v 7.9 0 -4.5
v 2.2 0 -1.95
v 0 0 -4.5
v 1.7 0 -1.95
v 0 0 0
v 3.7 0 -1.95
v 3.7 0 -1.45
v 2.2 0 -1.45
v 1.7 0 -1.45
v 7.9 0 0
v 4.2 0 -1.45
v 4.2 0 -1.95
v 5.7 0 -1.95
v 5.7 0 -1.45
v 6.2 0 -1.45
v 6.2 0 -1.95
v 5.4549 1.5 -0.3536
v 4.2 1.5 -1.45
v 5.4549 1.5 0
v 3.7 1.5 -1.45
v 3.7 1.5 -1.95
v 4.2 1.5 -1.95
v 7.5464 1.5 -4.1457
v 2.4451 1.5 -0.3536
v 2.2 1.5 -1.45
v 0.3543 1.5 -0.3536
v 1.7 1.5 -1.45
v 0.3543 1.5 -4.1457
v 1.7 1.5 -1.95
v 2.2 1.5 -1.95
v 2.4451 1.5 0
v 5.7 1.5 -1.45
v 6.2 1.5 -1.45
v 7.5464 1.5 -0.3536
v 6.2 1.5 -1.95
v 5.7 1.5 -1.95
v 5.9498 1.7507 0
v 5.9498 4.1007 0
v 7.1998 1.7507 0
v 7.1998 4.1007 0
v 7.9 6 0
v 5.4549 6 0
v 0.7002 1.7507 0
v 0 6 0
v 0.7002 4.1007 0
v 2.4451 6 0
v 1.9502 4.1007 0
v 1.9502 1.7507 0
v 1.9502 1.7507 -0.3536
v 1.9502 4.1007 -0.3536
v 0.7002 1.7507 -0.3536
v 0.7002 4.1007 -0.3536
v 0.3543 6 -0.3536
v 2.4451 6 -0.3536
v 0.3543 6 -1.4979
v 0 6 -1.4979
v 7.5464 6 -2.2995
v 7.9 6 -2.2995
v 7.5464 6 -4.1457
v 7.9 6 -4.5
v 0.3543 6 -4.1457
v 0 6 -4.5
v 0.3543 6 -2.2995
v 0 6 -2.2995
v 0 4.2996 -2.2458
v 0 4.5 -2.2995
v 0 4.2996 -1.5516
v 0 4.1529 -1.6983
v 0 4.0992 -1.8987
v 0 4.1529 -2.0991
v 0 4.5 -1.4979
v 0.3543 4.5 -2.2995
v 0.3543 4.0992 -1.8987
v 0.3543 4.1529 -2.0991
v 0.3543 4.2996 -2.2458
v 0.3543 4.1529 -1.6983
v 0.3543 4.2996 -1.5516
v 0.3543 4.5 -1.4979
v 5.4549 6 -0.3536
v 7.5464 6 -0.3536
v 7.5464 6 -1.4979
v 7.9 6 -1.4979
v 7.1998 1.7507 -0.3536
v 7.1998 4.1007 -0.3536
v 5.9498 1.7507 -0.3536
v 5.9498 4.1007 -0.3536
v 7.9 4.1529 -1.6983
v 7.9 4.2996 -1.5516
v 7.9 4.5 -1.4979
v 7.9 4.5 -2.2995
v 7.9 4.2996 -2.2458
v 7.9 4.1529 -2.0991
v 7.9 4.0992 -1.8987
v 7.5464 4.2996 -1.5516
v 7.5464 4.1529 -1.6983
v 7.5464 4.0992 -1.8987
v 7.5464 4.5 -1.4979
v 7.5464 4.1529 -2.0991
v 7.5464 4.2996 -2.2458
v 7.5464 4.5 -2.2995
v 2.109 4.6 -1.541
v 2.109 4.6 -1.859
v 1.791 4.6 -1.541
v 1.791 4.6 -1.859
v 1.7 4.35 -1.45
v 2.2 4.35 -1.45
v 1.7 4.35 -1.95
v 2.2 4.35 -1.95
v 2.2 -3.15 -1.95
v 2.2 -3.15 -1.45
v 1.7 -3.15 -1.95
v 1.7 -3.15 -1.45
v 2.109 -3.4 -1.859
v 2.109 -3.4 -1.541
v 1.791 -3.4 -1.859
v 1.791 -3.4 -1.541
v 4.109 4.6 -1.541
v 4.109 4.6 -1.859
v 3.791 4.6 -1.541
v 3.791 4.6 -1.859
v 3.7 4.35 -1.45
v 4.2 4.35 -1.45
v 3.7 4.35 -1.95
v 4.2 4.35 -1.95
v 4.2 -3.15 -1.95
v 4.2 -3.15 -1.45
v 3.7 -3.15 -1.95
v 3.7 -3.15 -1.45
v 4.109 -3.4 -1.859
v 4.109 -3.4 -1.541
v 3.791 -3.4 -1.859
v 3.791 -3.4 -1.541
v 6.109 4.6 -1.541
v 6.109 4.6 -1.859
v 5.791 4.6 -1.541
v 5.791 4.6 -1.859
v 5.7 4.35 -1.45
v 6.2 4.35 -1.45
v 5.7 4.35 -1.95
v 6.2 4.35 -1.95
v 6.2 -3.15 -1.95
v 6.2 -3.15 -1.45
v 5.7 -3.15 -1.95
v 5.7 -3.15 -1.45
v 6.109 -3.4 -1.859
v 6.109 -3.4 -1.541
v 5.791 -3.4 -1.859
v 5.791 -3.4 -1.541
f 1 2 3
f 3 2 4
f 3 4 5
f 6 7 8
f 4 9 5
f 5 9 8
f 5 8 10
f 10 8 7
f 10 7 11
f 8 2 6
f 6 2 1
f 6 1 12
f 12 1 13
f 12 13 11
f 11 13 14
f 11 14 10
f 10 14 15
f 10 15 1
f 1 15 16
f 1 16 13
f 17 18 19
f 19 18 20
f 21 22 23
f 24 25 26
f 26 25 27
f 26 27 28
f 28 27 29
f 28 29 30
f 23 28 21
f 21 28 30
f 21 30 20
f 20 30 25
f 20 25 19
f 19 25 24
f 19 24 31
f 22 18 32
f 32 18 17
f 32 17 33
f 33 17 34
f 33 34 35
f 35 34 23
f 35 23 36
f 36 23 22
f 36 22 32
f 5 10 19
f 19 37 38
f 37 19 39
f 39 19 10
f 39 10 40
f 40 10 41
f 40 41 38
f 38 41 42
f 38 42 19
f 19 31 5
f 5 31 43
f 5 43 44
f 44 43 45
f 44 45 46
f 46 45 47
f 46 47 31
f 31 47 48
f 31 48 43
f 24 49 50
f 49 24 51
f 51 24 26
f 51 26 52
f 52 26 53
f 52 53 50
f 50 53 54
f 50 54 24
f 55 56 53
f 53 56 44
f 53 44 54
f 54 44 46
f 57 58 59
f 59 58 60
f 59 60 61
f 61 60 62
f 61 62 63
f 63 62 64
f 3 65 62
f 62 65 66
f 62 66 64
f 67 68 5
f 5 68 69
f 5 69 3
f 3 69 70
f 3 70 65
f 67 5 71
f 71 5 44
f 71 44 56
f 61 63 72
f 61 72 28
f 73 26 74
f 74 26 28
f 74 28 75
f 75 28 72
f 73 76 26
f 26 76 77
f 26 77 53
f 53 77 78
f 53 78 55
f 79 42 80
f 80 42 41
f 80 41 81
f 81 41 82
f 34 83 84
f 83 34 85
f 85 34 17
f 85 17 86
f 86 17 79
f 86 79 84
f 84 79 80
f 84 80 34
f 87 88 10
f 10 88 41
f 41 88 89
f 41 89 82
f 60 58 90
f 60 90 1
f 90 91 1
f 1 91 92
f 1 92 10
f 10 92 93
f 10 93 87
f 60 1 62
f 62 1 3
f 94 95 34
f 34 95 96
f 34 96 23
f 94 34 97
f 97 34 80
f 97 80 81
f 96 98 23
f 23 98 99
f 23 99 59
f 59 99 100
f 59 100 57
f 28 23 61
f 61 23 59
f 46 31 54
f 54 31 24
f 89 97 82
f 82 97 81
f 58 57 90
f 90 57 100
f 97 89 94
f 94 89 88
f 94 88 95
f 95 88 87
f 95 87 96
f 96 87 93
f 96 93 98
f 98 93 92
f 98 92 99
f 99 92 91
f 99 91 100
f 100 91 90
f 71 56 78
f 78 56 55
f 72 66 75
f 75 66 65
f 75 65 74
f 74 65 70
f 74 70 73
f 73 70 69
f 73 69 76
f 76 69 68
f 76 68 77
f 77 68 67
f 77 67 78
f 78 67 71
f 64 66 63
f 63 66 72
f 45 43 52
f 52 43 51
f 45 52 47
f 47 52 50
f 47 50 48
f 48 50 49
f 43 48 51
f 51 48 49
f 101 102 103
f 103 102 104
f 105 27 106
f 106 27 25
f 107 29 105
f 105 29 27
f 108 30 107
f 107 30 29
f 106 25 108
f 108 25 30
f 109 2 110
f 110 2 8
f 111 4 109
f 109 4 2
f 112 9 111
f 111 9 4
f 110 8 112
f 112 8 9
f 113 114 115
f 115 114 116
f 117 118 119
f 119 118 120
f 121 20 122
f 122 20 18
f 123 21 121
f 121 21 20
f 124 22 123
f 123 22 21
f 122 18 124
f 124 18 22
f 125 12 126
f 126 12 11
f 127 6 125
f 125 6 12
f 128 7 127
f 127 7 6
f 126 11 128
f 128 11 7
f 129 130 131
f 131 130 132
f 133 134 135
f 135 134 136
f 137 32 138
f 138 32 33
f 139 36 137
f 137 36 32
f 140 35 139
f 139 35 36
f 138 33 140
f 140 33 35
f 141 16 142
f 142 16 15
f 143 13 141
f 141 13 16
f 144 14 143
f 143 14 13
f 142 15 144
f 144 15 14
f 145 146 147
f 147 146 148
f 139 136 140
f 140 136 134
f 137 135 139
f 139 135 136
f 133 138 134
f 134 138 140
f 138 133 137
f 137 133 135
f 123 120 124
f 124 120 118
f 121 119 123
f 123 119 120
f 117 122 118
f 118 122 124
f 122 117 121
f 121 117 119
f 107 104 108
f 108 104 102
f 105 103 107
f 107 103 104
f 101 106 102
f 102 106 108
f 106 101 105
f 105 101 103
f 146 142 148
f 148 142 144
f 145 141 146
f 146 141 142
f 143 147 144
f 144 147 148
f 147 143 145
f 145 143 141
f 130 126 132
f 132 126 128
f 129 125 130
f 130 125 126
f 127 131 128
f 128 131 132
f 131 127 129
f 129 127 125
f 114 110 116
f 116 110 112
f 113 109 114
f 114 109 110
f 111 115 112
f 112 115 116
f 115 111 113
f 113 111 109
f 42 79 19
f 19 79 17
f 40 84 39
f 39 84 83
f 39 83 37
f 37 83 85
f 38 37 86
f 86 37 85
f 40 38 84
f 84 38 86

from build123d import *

# Parameters (mm, degrees)
SKETCH1_W              = 7.9
SKETCH1_H              = 6
BOSS_EXTRUDE1_DEPTH    = 4.5
SKETCH2_W              = 7.192186002
SKETCH2_H              = 3.792186002
CUT_EXTRUDE1_DEPTH     = 4.5
SKETCH3_W              = 1.504949596
SKETCH3_H              = 0.354260607
CUT_EXTRUDE2_DEPTH     = 4.5
CUT_EXTRUDE3_DEPTH     = 0.5
SKETCH6_W              = 1.25
SKETCH6_H              = 2.35
CUT_EXTRUDE4_DEPTH     = 0.5
BOSS_EXTRUDE3_START    = -3.4
SKETCH10_W             = 0.5
SKETCH10_H             = 0.5
BOSS_EXTRUDE3_DEPTH    = 8
CHAMFER1_SIZE          = 0.25
CHAMFER1_SIZE2         = 0.090992559
CHAMFER1_PART_2_SIZE   = 0.25
CHAMFER1_PART_2_SIZE2  = 0.090992559
CHAMFER1_PART_3_SIZE   = 0.25
CHAMFER1_PART_3_SIZE2  = 0.090992559
CHAMFER1_PART_4_SIZE   = 0.25
CHAMFER1_PART_4_SIZE2  = 0.090992559
CHAMFER1_PART_5_SIZE   = 0.25
CHAMFER1_PART_5_SIZE2  = 0.090992559
CHAMFER1_PART_6_SIZE   = 0.25
CHAMFER1_PART_6_SIZE2  = 0.090992559
CHAMFER1_PART_7_SIZE   = 0.25
CHAMFER1_PART_7_SIZE2  = 0.090992559
CHAMFER1_PART_8_SIZE   = 0.25
CHAMFER1_PART_8_SIZE2  = 0.090992559
CHAMFER1_PART_9_SIZE   = 0.25
CHAMFER1_PART_9_SIZE2  = 0.090992559
CHAMFER1_PART_10_SIZE  = 0.25
CHAMFER1_PART_10_SIZE2 = 0.090992559
CHAMFER1_PART_11_SIZE  = 0.25
CHAMFER1_PART_11_SIZE2 = 0.090992559
CHAMFER1_PART_12_SIZE  = 0.25
CHAMFER1_PART_12_SIZE2 = 0.090992559
CHAMFER2_SIZE          = 0.25
CHAMFER2_SIZE2         = 0.090992559
CHAMFER2_PART_2_SIZE   = 0.25
CHAMFER2_PART_2_SIZE2  = 0.090992559
CHAMFER2_PART_3_SIZE   = 0.25
CHAMFER2_PART_3_SIZE2  = 0.090992559
CHAMFER2_PART_4_SIZE   = 0.25
CHAMFER2_PART_4_SIZE2  = 0.090992559
CHAMFER2_PART_5_SIZE   = 0.25
CHAMFER2_PART_5_SIZE2  = 0.090992559
CHAMFER2_PART_6_SIZE   = 0.25
CHAMFER2_PART_6_SIZE2  = 0.090992559
CHAMFER2_PART_7_SIZE   = 0.25
CHAMFER2_PART_7_SIZE2  = 0.090992559
CHAMFER2_PART_8_SIZE   = 0.25
CHAMFER2_PART_8_SIZE2  = 0.090992559
CHAMFER2_PART_9_SIZE   = 0.25
CHAMFER2_PART_9_SIZE2  = 0.090992559
CHAMFER2_PART_10_SIZE  = 0.25
CHAMFER2_PART_10_SIZE2 = 0.090992559
CHAMFER2_PART_11_SIZE  = 0.25
CHAMFER2_PART_11_SIZE2 = 0.090992559
CHAMFER2_PART_12_SIZE  = 0.25
CHAMFER2_PART_12_SIZE2 = 0.090992559


with BuildPart() as part:
    # Sketch1 → Boss-Extrude1 (new body)
    with BuildSketch(Plane.XY):
        with Locations((3.95, 3)):
            Rectangle(SKETCH1_W, SKETCH1_H)
    extrude(amount=-BOSS_EXTRUDE1_DEPTH)

    # Sketch2 → Cut-Extrude1 (cut)
    with BuildSketch(Plane(origin=(0, 6, 0), x_dir=(1, 0, 0), z_dir=(0, 1, 0))):
        with Locations((3.950353608, 2.249646392)):
            Rectangle(SKETCH2_W, SKETCH2_H)
    extrude(amount=-CUT_EXTRUDE1_DEPTH, mode=Mode.SUBTRACT)

    # Sketch3 → Cut-Extrude2 (cut)
    with BuildSketch(Plane(origin=(0, 1.5, 0), x_dir=(1, 0, 0), z_dir=(0, 1, 0))):
        with Locations((3.197525202, 0.177130304)):
            Rectangle(SKETCH3_W, SKETCH3_H)
    cut_extrude2 = extrude(amount=CUT_EXTRUDE2_DEPTH, mode=Mode.SUBTRACT)

    # Sketch5 → Cut-Extrude3 (cut)
    with BuildSketch(Plane(origin=(7.9, 0, 0), x_dir=(0, 0, -1), z_dir=(1, 0, 0))):
        with BuildLine():
            Line((2.299478677, 6), (1.497924103, 6))
            Line((1.497924103, 6), (1.497924103, 4.5))
            ThreePointArc((1.497924103, 4.5), (1.89870139, 4.900777287), (2.299478677, 4.5))
            Line((2.299478677, 4.5), (2.299478677, 6))
        make_face()
        with BuildLine():
            ThreePointArc((2.299478677, 4.5), (1.89870139, 4.900777287), (1.497924103, 4.5))
            Line((1.497924103, 4.5), (2.299478677, 4.5))
        make_face()
        with BuildLine():
            Line((2.299478677, 4.5), (1.497924103, 4.5))
            ThreePointArc((1.497924103, 4.5), (1.89870139, 4.099222713), (2.299478677, 4.5))
        make_face()
    cut_extrude3 = extrude(amount=-CUT_EXTRUDE3_DEPTH, mode=Mode.SUBTRACT)

    # Mirror1: Cut-Extrude3 across plane
    add(cut_extrude3.mirror(Plane(origin=(3.95, 0, 0), x_dir=(0, 0, 1), z_dir=(1, 0, 0))), mode=Mode.SUBTRACT)

    # Sketch6 → Cut-Extrude4 (cut)
    with BuildSketch(Plane.XY):
        with Locations((1.325196701, 2.925654718)):
            Rectangle(SKETCH6_W, SKETCH6_H)
    cut_extrude4 = extrude(amount=-CUT_EXTRUDE4_DEPTH, mode=Mode.SUBTRACT)

    # Sketch10 → Boss-Extrude3 (add)
    with BuildSketch(Plane(origin=(0, 0, 0), x_dir=(1, 0, 0), z_dir=(0, 1, 0)).offset(BOSS_EXTRUDE3_START)):
        with Locations((1.95, 1.7)):
            Rectangle(SKETCH10_W, SKETCH10_H)
        with Locations((3.95, 1.7)):
            Rectangle(SKETCH10_W, SKETCH10_H)
        with Locations((5.95, 1.7)):
            Rectangle(SKETCH10_W, SKETCH10_H)
    extrude(amount=BOSS_EXTRUDE3_DEPTH)

    # Chamfer1
    chamfer1_edges = [part.edges().sort_by_distance(p)[0] for p in [
        (2.2, 4.6, -1.7),
    ]]
    chamfer1_side = [part.faces().sort_by_distance(p)[0] for p in [
        (2.2, 3.05, -1.7),
    ]]
    chamfer(chamfer1_edges, length=CHAMFER1_SIZE, length2=CHAMFER1_SIZE2, reference=chamfer1_side[0])

    # Chamfer1 part 2
    chamfer1_part_2_edges = [part.edges().sort_by_distance(p)[0] for p in [
        (1.95, 4.6, -1.95),
    ]]
    chamfer1_part_2_side = [part.faces().sort_by_distance(p)[0] for p in [
        (1.95, 3.05, -1.95),
    ]]
    chamfer(chamfer1_part_2_edges, length=CHAMFER1_PART_2_SIZE, length2=CHAMFER1_PART_2_SIZE2, reference=chamfer1_part_2_side[0])

    # Chamfer1 part 3
    chamfer1_part_3_edges = [part.edges().sort_by_distance(p)[0] for p in [
        (1.7, 4.6, -1.7),
    ]]
    chamfer1_part_3_side = [part.faces().sort_by_distance(p)[0] for p in [
        (1.7, 3.05, -1.7),
    ]]
    chamfer(chamfer1_part_3_edges, length=CHAMFER1_PART_3_SIZE, length2=CHAMFER1_PART_3_SIZE2, reference=chamfer1_part_3_side[0])

    # Chamfer1 part 4
    chamfer1_part_4_edges = [part.edges().sort_by_distance(p)[0] for p in [
        (1.95, 4.6, -1.45),
    ]]
    chamfer1_part_4_side = [part.faces().sort_by_distance(p)[0] for p in [
        (1.95, 3.05, -1.45),
    ]]
    chamfer(chamfer1_part_4_edges, length=CHAMFER1_PART_4_SIZE, length2=CHAMFER1_PART_4_SIZE2, reference=chamfer1_part_4_side[0])

    # Chamfer1 part 5
    chamfer1_part_5_edges = [part.edges().sort_by_distance(p)[0] for p in [
        (4.2, 4.6, -1.7),
    ]]
    chamfer1_part_5_side = [part.faces().sort_by_distance(p)[0] for p in [
        (4.2, 3.05, -1.7),
    ]]
    chamfer(chamfer1_part_5_edges, length=CHAMFER1_PART_5_SIZE, length2=CHAMFER1_PART_5_SIZE2, reference=chamfer1_part_5_side[0])

    # Chamfer1 part 6
    chamfer1_part_6_edges = [part.edges().sort_by_distance(p)[0] for p in [
        (3.95, 4.6, -1.95),
    ]]
    chamfer1_part_6_side = [part.faces().sort_by_distance(p)[0] for p in [
        (3.95, 3.05, -1.95),
    ]]
    chamfer(chamfer1_part_6_edges, length=CHAMFER1_PART_6_SIZE, length2=CHAMFER1_PART_6_SIZE2, reference=chamfer1_part_6_side[0])

    # Chamfer1 part 7
    chamfer1_part_7_edges = [part.edges().sort_by_distance(p)[0] for p in [
        (3.7, 4.6, -1.7),
    ]]
    chamfer1_part_7_side = [part.faces().sort_by_distance(p)[0] for p in [
        (3.7, 3.05, -1.7),
    ]]
    chamfer(chamfer1_part_7_edges, length=CHAMFER1_PART_7_SIZE, length2=CHAMFER1_PART_7_SIZE2, reference=chamfer1_part_7_side[0])

    # Chamfer1 part 8
    chamfer1_part_8_edges = [part.edges().sort_by_distance(p)[0] for p in [
        (3.95, 4.6, -1.45),
    ]]
    chamfer1_part_8_side = [part.faces().sort_by_distance(p)[0] for p in [
        (3.95, 3.05, -1.45),
    ]]
    chamfer(chamfer1_part_8_edges, length=CHAMFER1_PART_8_SIZE, length2=CHAMFER1_PART_8_SIZE2, reference=chamfer1_part_8_side[0])

    # Chamfer1 part 9
    chamfer1_part_9_edges = [part.edges().sort_by_distance(p)[0] for p in [
        (6.2, 4.6, -1.7),
    ]]
    chamfer1_part_9_side = [part.faces().sort_by_distance(p)[0] for p in [
        (6.2, 3.05, -1.7),
    ]]
    chamfer(chamfer1_part_9_edges, length=CHAMFER1_PART_9_SIZE, length2=CHAMFER1_PART_9_SIZE2, reference=chamfer1_part_9_side[0])

    # Chamfer1 part 10
    chamfer1_part_10_edges = [part.edges().sort_by_distance(p)[0] for p in [
        (5.95, 4.6, -1.95),
    ]]
    chamfer1_part_10_side = [part.faces().sort_by_distance(p)[0] for p in [
        (5.95, 3.05, -1.95),
    ]]
    chamfer(chamfer1_part_10_edges, length=CHAMFER1_PART_10_SIZE, length2=CHAMFER1_PART_10_SIZE2, reference=chamfer1_part_10_side[0])

    # Chamfer1 part 11
    chamfer1_part_11_edges = [part.edges().sort_by_distance(p)[0] for p in [
        (5.7, 4.6, -1.7),
    ]]
    chamfer1_part_11_side = [part.faces().sort_by_distance(p)[0] for p in [
        (5.7, 3.05, -1.7),
    ]]
    chamfer(chamfer1_part_11_edges, length=CHAMFER1_PART_11_SIZE, length2=CHAMFER1_PART_11_SIZE2, reference=chamfer1_part_11_side[0])

    # Chamfer1 part 12
    chamfer1_part_12_edges = [part.edges().sort_by_distance(p)[0] for p in [
        (5.95, 4.6, -1.45),
    ]]
    chamfer1_part_12_side = [part.faces().sort_by_distance(p)[0] for p in [
        (5.95, 3.05, -1.45),
    ]]
    chamfer(chamfer1_part_12_edges, length=CHAMFER1_PART_12_SIZE, length2=CHAMFER1_PART_12_SIZE2, reference=chamfer1_part_12_side[0])

    # Chamfer2
    chamfer2_edges = [part.edges().sort_by_distance(p)[0] for p in [
        (2.2, -3.4, -1.7),
    ]]
    chamfer2_side = [part.faces().sort_by_distance(p)[0] for p in [
        (2.2, -1.7, -1.7),
    ]]
    chamfer(chamfer2_edges, length=CHAMFER2_SIZE, length2=CHAMFER2_SIZE2, reference=chamfer2_side[0])

    # Chamfer2 part 2
    chamfer2_part_2_edges = [part.edges().sort_by_distance(p)[0] for p in [
        (1.95, -3.4, -1.95),
    ]]
    chamfer2_part_2_side = [part.faces().sort_by_distance(p)[0] for p in [
        (1.95, -1.7, -1.95),
    ]]
    chamfer(chamfer2_part_2_edges, length=CHAMFER2_PART_2_SIZE, length2=CHAMFER2_PART_2_SIZE2, reference=chamfer2_part_2_side[0])

    # Chamfer2 part 3
    chamfer2_part_3_edges = [part.edges().sort_by_distance(p)[0] for p in [
        (1.7, -3.4, -1.7),
    ]]
    chamfer2_part_3_side = [part.faces().sort_by_distance(p)[0] for p in [
        (1.7, -1.7, -1.7),
    ]]
    chamfer(chamfer2_part_3_edges, length=CHAMFER2_PART_3_SIZE, length2=CHAMFER2_PART_3_SIZE2, reference=chamfer2_part_3_side[0])

    # Chamfer2 part 4
    chamfer2_part_4_edges = [part.edges().sort_by_distance(p)[0] for p in [
        (1.95, -3.4, -1.45),
    ]]
    chamfer2_part_4_side = [part.faces().sort_by_distance(p)[0] for p in [
        (1.95, -1.7, -1.45),
    ]]
    chamfer(chamfer2_part_4_edges, length=CHAMFER2_PART_4_SIZE, length2=CHAMFER2_PART_4_SIZE2, reference=chamfer2_part_4_side[0])

    # Chamfer2 part 5
    chamfer2_part_5_edges = [part.edges().sort_by_distance(p)[0] for p in [
        (4.2, -3.4, -1.7),
    ]]
    chamfer2_part_5_side = [part.faces().sort_by_distance(p)[0] for p in [
        (4.2, -1.7, -1.7),
    ]]
    chamfer(chamfer2_part_5_edges, length=CHAMFER2_PART_5_SIZE, length2=CHAMFER2_PART_5_SIZE2, reference=chamfer2_part_5_side[0])

    # Chamfer2 part 6
    chamfer2_part_6_edges = [part.edges().sort_by_distance(p)[0] for p in [
        (3.95, -3.4, -1.95),
    ]]
    chamfer2_part_6_side = [part.faces().sort_by_distance(p)[0] for p in [
        (3.95, -1.7, -1.95),
    ]]
    chamfer(chamfer2_part_6_edges, length=CHAMFER2_PART_6_SIZE, length2=CHAMFER2_PART_6_SIZE2, reference=chamfer2_part_6_side[0])

    # Chamfer2 part 7
    chamfer2_part_7_edges = [part.edges().sort_by_distance(p)[0] for p in [
        (3.7, -3.4, -1.7),
    ]]
    chamfer2_part_7_side = [part.faces().sort_by_distance(p)[0] for p in [
        (3.7, -1.7, -1.7),
    ]]
    chamfer(chamfer2_part_7_edges, length=CHAMFER2_PART_7_SIZE, length2=CHAMFER2_PART_7_SIZE2, reference=chamfer2_part_7_side[0])

    # Chamfer2 part 8
    chamfer2_part_8_edges = [part.edges().sort_by_distance(p)[0] for p in [
        (3.95, -3.4, -1.45),
    ]]
    chamfer2_part_8_side = [part.faces().sort_by_distance(p)[0] for p in [
        (3.95, -1.7, -1.45),
    ]]
    chamfer(chamfer2_part_8_edges, length=CHAMFER2_PART_8_SIZE, length2=CHAMFER2_PART_8_SIZE2, reference=chamfer2_part_8_side[0])

    # Chamfer2 part 9
    chamfer2_part_9_edges = [part.edges().sort_by_distance(p)[0] for p in [
        (6.2, -3.4, -1.7),
    ]]
    chamfer2_part_9_side = [part.faces().sort_by_distance(p)[0] for p in [
        (6.2, -1.7, -1.7),
    ]]
    chamfer(chamfer2_part_9_edges, length=CHAMFER2_PART_9_SIZE, length2=CHAMFER2_PART_9_SIZE2, reference=chamfer2_part_9_side[0])

    # Chamfer2 part 10
    chamfer2_part_10_edges = [part.edges().sort_by_distance(p)[0] for p in [
        (5.95, -3.4, -1.95),
    ]]
    chamfer2_part_10_side = [part.faces().sort_by_distance(p)[0] for p in [
        (5.95, -1.7, -1.95),
    ]]
    chamfer(chamfer2_part_10_edges, length=CHAMFER2_PART_10_SIZE, length2=CHAMFER2_PART_10_SIZE2, reference=chamfer2_part_10_side[0])

    # Chamfer2 part 11
    chamfer2_part_11_edges = [part.edges().sort_by_distance(p)[0] for p in [
        (5.7, -3.4, -1.7),
    ]]
    chamfer2_part_11_side = [part.faces().sort_by_distance(p)[0] for p in [
        (5.7, -1.7, -1.7),
    ]]
    chamfer(chamfer2_part_11_edges, length=CHAMFER2_PART_11_SIZE, length2=CHAMFER2_PART_11_SIZE2, reference=chamfer2_part_11_side[0])

    # Chamfer2 part 12
    chamfer2_part_12_edges = [part.edges().sort_by_distance(p)[0] for p in [
        (5.95, -3.4, -1.45),
    ]]
    chamfer2_part_12_side = [part.faces().sort_by_distance(p)[0] for p in [
        (5.95, -1.7, -1.45),
    ]]
    chamfer(chamfer2_part_12_edges, length=CHAMFER2_PART_12_SIZE, length2=CHAMFER2_PART_12_SIZE2, reference=chamfer2_part_12_side[0])

    # Mirror2: Cut-Extrude2, Cut-Extrude4 across plane
    add(cut_extrude2.mirror(Plane(origin=(3.95, 0, 0), x_dir=(0, 0, 1), z_dir=(1, 0, 0))), mode=Mode.SUBTRACT)
    add(cut_extrude4.mirror(Plane(origin=(3.95, 0, 0), x_dir=(0, 0, 1), z_dir=(1, 0, 0))), mode=Mode.SUBTRACT)


solid = part.part
